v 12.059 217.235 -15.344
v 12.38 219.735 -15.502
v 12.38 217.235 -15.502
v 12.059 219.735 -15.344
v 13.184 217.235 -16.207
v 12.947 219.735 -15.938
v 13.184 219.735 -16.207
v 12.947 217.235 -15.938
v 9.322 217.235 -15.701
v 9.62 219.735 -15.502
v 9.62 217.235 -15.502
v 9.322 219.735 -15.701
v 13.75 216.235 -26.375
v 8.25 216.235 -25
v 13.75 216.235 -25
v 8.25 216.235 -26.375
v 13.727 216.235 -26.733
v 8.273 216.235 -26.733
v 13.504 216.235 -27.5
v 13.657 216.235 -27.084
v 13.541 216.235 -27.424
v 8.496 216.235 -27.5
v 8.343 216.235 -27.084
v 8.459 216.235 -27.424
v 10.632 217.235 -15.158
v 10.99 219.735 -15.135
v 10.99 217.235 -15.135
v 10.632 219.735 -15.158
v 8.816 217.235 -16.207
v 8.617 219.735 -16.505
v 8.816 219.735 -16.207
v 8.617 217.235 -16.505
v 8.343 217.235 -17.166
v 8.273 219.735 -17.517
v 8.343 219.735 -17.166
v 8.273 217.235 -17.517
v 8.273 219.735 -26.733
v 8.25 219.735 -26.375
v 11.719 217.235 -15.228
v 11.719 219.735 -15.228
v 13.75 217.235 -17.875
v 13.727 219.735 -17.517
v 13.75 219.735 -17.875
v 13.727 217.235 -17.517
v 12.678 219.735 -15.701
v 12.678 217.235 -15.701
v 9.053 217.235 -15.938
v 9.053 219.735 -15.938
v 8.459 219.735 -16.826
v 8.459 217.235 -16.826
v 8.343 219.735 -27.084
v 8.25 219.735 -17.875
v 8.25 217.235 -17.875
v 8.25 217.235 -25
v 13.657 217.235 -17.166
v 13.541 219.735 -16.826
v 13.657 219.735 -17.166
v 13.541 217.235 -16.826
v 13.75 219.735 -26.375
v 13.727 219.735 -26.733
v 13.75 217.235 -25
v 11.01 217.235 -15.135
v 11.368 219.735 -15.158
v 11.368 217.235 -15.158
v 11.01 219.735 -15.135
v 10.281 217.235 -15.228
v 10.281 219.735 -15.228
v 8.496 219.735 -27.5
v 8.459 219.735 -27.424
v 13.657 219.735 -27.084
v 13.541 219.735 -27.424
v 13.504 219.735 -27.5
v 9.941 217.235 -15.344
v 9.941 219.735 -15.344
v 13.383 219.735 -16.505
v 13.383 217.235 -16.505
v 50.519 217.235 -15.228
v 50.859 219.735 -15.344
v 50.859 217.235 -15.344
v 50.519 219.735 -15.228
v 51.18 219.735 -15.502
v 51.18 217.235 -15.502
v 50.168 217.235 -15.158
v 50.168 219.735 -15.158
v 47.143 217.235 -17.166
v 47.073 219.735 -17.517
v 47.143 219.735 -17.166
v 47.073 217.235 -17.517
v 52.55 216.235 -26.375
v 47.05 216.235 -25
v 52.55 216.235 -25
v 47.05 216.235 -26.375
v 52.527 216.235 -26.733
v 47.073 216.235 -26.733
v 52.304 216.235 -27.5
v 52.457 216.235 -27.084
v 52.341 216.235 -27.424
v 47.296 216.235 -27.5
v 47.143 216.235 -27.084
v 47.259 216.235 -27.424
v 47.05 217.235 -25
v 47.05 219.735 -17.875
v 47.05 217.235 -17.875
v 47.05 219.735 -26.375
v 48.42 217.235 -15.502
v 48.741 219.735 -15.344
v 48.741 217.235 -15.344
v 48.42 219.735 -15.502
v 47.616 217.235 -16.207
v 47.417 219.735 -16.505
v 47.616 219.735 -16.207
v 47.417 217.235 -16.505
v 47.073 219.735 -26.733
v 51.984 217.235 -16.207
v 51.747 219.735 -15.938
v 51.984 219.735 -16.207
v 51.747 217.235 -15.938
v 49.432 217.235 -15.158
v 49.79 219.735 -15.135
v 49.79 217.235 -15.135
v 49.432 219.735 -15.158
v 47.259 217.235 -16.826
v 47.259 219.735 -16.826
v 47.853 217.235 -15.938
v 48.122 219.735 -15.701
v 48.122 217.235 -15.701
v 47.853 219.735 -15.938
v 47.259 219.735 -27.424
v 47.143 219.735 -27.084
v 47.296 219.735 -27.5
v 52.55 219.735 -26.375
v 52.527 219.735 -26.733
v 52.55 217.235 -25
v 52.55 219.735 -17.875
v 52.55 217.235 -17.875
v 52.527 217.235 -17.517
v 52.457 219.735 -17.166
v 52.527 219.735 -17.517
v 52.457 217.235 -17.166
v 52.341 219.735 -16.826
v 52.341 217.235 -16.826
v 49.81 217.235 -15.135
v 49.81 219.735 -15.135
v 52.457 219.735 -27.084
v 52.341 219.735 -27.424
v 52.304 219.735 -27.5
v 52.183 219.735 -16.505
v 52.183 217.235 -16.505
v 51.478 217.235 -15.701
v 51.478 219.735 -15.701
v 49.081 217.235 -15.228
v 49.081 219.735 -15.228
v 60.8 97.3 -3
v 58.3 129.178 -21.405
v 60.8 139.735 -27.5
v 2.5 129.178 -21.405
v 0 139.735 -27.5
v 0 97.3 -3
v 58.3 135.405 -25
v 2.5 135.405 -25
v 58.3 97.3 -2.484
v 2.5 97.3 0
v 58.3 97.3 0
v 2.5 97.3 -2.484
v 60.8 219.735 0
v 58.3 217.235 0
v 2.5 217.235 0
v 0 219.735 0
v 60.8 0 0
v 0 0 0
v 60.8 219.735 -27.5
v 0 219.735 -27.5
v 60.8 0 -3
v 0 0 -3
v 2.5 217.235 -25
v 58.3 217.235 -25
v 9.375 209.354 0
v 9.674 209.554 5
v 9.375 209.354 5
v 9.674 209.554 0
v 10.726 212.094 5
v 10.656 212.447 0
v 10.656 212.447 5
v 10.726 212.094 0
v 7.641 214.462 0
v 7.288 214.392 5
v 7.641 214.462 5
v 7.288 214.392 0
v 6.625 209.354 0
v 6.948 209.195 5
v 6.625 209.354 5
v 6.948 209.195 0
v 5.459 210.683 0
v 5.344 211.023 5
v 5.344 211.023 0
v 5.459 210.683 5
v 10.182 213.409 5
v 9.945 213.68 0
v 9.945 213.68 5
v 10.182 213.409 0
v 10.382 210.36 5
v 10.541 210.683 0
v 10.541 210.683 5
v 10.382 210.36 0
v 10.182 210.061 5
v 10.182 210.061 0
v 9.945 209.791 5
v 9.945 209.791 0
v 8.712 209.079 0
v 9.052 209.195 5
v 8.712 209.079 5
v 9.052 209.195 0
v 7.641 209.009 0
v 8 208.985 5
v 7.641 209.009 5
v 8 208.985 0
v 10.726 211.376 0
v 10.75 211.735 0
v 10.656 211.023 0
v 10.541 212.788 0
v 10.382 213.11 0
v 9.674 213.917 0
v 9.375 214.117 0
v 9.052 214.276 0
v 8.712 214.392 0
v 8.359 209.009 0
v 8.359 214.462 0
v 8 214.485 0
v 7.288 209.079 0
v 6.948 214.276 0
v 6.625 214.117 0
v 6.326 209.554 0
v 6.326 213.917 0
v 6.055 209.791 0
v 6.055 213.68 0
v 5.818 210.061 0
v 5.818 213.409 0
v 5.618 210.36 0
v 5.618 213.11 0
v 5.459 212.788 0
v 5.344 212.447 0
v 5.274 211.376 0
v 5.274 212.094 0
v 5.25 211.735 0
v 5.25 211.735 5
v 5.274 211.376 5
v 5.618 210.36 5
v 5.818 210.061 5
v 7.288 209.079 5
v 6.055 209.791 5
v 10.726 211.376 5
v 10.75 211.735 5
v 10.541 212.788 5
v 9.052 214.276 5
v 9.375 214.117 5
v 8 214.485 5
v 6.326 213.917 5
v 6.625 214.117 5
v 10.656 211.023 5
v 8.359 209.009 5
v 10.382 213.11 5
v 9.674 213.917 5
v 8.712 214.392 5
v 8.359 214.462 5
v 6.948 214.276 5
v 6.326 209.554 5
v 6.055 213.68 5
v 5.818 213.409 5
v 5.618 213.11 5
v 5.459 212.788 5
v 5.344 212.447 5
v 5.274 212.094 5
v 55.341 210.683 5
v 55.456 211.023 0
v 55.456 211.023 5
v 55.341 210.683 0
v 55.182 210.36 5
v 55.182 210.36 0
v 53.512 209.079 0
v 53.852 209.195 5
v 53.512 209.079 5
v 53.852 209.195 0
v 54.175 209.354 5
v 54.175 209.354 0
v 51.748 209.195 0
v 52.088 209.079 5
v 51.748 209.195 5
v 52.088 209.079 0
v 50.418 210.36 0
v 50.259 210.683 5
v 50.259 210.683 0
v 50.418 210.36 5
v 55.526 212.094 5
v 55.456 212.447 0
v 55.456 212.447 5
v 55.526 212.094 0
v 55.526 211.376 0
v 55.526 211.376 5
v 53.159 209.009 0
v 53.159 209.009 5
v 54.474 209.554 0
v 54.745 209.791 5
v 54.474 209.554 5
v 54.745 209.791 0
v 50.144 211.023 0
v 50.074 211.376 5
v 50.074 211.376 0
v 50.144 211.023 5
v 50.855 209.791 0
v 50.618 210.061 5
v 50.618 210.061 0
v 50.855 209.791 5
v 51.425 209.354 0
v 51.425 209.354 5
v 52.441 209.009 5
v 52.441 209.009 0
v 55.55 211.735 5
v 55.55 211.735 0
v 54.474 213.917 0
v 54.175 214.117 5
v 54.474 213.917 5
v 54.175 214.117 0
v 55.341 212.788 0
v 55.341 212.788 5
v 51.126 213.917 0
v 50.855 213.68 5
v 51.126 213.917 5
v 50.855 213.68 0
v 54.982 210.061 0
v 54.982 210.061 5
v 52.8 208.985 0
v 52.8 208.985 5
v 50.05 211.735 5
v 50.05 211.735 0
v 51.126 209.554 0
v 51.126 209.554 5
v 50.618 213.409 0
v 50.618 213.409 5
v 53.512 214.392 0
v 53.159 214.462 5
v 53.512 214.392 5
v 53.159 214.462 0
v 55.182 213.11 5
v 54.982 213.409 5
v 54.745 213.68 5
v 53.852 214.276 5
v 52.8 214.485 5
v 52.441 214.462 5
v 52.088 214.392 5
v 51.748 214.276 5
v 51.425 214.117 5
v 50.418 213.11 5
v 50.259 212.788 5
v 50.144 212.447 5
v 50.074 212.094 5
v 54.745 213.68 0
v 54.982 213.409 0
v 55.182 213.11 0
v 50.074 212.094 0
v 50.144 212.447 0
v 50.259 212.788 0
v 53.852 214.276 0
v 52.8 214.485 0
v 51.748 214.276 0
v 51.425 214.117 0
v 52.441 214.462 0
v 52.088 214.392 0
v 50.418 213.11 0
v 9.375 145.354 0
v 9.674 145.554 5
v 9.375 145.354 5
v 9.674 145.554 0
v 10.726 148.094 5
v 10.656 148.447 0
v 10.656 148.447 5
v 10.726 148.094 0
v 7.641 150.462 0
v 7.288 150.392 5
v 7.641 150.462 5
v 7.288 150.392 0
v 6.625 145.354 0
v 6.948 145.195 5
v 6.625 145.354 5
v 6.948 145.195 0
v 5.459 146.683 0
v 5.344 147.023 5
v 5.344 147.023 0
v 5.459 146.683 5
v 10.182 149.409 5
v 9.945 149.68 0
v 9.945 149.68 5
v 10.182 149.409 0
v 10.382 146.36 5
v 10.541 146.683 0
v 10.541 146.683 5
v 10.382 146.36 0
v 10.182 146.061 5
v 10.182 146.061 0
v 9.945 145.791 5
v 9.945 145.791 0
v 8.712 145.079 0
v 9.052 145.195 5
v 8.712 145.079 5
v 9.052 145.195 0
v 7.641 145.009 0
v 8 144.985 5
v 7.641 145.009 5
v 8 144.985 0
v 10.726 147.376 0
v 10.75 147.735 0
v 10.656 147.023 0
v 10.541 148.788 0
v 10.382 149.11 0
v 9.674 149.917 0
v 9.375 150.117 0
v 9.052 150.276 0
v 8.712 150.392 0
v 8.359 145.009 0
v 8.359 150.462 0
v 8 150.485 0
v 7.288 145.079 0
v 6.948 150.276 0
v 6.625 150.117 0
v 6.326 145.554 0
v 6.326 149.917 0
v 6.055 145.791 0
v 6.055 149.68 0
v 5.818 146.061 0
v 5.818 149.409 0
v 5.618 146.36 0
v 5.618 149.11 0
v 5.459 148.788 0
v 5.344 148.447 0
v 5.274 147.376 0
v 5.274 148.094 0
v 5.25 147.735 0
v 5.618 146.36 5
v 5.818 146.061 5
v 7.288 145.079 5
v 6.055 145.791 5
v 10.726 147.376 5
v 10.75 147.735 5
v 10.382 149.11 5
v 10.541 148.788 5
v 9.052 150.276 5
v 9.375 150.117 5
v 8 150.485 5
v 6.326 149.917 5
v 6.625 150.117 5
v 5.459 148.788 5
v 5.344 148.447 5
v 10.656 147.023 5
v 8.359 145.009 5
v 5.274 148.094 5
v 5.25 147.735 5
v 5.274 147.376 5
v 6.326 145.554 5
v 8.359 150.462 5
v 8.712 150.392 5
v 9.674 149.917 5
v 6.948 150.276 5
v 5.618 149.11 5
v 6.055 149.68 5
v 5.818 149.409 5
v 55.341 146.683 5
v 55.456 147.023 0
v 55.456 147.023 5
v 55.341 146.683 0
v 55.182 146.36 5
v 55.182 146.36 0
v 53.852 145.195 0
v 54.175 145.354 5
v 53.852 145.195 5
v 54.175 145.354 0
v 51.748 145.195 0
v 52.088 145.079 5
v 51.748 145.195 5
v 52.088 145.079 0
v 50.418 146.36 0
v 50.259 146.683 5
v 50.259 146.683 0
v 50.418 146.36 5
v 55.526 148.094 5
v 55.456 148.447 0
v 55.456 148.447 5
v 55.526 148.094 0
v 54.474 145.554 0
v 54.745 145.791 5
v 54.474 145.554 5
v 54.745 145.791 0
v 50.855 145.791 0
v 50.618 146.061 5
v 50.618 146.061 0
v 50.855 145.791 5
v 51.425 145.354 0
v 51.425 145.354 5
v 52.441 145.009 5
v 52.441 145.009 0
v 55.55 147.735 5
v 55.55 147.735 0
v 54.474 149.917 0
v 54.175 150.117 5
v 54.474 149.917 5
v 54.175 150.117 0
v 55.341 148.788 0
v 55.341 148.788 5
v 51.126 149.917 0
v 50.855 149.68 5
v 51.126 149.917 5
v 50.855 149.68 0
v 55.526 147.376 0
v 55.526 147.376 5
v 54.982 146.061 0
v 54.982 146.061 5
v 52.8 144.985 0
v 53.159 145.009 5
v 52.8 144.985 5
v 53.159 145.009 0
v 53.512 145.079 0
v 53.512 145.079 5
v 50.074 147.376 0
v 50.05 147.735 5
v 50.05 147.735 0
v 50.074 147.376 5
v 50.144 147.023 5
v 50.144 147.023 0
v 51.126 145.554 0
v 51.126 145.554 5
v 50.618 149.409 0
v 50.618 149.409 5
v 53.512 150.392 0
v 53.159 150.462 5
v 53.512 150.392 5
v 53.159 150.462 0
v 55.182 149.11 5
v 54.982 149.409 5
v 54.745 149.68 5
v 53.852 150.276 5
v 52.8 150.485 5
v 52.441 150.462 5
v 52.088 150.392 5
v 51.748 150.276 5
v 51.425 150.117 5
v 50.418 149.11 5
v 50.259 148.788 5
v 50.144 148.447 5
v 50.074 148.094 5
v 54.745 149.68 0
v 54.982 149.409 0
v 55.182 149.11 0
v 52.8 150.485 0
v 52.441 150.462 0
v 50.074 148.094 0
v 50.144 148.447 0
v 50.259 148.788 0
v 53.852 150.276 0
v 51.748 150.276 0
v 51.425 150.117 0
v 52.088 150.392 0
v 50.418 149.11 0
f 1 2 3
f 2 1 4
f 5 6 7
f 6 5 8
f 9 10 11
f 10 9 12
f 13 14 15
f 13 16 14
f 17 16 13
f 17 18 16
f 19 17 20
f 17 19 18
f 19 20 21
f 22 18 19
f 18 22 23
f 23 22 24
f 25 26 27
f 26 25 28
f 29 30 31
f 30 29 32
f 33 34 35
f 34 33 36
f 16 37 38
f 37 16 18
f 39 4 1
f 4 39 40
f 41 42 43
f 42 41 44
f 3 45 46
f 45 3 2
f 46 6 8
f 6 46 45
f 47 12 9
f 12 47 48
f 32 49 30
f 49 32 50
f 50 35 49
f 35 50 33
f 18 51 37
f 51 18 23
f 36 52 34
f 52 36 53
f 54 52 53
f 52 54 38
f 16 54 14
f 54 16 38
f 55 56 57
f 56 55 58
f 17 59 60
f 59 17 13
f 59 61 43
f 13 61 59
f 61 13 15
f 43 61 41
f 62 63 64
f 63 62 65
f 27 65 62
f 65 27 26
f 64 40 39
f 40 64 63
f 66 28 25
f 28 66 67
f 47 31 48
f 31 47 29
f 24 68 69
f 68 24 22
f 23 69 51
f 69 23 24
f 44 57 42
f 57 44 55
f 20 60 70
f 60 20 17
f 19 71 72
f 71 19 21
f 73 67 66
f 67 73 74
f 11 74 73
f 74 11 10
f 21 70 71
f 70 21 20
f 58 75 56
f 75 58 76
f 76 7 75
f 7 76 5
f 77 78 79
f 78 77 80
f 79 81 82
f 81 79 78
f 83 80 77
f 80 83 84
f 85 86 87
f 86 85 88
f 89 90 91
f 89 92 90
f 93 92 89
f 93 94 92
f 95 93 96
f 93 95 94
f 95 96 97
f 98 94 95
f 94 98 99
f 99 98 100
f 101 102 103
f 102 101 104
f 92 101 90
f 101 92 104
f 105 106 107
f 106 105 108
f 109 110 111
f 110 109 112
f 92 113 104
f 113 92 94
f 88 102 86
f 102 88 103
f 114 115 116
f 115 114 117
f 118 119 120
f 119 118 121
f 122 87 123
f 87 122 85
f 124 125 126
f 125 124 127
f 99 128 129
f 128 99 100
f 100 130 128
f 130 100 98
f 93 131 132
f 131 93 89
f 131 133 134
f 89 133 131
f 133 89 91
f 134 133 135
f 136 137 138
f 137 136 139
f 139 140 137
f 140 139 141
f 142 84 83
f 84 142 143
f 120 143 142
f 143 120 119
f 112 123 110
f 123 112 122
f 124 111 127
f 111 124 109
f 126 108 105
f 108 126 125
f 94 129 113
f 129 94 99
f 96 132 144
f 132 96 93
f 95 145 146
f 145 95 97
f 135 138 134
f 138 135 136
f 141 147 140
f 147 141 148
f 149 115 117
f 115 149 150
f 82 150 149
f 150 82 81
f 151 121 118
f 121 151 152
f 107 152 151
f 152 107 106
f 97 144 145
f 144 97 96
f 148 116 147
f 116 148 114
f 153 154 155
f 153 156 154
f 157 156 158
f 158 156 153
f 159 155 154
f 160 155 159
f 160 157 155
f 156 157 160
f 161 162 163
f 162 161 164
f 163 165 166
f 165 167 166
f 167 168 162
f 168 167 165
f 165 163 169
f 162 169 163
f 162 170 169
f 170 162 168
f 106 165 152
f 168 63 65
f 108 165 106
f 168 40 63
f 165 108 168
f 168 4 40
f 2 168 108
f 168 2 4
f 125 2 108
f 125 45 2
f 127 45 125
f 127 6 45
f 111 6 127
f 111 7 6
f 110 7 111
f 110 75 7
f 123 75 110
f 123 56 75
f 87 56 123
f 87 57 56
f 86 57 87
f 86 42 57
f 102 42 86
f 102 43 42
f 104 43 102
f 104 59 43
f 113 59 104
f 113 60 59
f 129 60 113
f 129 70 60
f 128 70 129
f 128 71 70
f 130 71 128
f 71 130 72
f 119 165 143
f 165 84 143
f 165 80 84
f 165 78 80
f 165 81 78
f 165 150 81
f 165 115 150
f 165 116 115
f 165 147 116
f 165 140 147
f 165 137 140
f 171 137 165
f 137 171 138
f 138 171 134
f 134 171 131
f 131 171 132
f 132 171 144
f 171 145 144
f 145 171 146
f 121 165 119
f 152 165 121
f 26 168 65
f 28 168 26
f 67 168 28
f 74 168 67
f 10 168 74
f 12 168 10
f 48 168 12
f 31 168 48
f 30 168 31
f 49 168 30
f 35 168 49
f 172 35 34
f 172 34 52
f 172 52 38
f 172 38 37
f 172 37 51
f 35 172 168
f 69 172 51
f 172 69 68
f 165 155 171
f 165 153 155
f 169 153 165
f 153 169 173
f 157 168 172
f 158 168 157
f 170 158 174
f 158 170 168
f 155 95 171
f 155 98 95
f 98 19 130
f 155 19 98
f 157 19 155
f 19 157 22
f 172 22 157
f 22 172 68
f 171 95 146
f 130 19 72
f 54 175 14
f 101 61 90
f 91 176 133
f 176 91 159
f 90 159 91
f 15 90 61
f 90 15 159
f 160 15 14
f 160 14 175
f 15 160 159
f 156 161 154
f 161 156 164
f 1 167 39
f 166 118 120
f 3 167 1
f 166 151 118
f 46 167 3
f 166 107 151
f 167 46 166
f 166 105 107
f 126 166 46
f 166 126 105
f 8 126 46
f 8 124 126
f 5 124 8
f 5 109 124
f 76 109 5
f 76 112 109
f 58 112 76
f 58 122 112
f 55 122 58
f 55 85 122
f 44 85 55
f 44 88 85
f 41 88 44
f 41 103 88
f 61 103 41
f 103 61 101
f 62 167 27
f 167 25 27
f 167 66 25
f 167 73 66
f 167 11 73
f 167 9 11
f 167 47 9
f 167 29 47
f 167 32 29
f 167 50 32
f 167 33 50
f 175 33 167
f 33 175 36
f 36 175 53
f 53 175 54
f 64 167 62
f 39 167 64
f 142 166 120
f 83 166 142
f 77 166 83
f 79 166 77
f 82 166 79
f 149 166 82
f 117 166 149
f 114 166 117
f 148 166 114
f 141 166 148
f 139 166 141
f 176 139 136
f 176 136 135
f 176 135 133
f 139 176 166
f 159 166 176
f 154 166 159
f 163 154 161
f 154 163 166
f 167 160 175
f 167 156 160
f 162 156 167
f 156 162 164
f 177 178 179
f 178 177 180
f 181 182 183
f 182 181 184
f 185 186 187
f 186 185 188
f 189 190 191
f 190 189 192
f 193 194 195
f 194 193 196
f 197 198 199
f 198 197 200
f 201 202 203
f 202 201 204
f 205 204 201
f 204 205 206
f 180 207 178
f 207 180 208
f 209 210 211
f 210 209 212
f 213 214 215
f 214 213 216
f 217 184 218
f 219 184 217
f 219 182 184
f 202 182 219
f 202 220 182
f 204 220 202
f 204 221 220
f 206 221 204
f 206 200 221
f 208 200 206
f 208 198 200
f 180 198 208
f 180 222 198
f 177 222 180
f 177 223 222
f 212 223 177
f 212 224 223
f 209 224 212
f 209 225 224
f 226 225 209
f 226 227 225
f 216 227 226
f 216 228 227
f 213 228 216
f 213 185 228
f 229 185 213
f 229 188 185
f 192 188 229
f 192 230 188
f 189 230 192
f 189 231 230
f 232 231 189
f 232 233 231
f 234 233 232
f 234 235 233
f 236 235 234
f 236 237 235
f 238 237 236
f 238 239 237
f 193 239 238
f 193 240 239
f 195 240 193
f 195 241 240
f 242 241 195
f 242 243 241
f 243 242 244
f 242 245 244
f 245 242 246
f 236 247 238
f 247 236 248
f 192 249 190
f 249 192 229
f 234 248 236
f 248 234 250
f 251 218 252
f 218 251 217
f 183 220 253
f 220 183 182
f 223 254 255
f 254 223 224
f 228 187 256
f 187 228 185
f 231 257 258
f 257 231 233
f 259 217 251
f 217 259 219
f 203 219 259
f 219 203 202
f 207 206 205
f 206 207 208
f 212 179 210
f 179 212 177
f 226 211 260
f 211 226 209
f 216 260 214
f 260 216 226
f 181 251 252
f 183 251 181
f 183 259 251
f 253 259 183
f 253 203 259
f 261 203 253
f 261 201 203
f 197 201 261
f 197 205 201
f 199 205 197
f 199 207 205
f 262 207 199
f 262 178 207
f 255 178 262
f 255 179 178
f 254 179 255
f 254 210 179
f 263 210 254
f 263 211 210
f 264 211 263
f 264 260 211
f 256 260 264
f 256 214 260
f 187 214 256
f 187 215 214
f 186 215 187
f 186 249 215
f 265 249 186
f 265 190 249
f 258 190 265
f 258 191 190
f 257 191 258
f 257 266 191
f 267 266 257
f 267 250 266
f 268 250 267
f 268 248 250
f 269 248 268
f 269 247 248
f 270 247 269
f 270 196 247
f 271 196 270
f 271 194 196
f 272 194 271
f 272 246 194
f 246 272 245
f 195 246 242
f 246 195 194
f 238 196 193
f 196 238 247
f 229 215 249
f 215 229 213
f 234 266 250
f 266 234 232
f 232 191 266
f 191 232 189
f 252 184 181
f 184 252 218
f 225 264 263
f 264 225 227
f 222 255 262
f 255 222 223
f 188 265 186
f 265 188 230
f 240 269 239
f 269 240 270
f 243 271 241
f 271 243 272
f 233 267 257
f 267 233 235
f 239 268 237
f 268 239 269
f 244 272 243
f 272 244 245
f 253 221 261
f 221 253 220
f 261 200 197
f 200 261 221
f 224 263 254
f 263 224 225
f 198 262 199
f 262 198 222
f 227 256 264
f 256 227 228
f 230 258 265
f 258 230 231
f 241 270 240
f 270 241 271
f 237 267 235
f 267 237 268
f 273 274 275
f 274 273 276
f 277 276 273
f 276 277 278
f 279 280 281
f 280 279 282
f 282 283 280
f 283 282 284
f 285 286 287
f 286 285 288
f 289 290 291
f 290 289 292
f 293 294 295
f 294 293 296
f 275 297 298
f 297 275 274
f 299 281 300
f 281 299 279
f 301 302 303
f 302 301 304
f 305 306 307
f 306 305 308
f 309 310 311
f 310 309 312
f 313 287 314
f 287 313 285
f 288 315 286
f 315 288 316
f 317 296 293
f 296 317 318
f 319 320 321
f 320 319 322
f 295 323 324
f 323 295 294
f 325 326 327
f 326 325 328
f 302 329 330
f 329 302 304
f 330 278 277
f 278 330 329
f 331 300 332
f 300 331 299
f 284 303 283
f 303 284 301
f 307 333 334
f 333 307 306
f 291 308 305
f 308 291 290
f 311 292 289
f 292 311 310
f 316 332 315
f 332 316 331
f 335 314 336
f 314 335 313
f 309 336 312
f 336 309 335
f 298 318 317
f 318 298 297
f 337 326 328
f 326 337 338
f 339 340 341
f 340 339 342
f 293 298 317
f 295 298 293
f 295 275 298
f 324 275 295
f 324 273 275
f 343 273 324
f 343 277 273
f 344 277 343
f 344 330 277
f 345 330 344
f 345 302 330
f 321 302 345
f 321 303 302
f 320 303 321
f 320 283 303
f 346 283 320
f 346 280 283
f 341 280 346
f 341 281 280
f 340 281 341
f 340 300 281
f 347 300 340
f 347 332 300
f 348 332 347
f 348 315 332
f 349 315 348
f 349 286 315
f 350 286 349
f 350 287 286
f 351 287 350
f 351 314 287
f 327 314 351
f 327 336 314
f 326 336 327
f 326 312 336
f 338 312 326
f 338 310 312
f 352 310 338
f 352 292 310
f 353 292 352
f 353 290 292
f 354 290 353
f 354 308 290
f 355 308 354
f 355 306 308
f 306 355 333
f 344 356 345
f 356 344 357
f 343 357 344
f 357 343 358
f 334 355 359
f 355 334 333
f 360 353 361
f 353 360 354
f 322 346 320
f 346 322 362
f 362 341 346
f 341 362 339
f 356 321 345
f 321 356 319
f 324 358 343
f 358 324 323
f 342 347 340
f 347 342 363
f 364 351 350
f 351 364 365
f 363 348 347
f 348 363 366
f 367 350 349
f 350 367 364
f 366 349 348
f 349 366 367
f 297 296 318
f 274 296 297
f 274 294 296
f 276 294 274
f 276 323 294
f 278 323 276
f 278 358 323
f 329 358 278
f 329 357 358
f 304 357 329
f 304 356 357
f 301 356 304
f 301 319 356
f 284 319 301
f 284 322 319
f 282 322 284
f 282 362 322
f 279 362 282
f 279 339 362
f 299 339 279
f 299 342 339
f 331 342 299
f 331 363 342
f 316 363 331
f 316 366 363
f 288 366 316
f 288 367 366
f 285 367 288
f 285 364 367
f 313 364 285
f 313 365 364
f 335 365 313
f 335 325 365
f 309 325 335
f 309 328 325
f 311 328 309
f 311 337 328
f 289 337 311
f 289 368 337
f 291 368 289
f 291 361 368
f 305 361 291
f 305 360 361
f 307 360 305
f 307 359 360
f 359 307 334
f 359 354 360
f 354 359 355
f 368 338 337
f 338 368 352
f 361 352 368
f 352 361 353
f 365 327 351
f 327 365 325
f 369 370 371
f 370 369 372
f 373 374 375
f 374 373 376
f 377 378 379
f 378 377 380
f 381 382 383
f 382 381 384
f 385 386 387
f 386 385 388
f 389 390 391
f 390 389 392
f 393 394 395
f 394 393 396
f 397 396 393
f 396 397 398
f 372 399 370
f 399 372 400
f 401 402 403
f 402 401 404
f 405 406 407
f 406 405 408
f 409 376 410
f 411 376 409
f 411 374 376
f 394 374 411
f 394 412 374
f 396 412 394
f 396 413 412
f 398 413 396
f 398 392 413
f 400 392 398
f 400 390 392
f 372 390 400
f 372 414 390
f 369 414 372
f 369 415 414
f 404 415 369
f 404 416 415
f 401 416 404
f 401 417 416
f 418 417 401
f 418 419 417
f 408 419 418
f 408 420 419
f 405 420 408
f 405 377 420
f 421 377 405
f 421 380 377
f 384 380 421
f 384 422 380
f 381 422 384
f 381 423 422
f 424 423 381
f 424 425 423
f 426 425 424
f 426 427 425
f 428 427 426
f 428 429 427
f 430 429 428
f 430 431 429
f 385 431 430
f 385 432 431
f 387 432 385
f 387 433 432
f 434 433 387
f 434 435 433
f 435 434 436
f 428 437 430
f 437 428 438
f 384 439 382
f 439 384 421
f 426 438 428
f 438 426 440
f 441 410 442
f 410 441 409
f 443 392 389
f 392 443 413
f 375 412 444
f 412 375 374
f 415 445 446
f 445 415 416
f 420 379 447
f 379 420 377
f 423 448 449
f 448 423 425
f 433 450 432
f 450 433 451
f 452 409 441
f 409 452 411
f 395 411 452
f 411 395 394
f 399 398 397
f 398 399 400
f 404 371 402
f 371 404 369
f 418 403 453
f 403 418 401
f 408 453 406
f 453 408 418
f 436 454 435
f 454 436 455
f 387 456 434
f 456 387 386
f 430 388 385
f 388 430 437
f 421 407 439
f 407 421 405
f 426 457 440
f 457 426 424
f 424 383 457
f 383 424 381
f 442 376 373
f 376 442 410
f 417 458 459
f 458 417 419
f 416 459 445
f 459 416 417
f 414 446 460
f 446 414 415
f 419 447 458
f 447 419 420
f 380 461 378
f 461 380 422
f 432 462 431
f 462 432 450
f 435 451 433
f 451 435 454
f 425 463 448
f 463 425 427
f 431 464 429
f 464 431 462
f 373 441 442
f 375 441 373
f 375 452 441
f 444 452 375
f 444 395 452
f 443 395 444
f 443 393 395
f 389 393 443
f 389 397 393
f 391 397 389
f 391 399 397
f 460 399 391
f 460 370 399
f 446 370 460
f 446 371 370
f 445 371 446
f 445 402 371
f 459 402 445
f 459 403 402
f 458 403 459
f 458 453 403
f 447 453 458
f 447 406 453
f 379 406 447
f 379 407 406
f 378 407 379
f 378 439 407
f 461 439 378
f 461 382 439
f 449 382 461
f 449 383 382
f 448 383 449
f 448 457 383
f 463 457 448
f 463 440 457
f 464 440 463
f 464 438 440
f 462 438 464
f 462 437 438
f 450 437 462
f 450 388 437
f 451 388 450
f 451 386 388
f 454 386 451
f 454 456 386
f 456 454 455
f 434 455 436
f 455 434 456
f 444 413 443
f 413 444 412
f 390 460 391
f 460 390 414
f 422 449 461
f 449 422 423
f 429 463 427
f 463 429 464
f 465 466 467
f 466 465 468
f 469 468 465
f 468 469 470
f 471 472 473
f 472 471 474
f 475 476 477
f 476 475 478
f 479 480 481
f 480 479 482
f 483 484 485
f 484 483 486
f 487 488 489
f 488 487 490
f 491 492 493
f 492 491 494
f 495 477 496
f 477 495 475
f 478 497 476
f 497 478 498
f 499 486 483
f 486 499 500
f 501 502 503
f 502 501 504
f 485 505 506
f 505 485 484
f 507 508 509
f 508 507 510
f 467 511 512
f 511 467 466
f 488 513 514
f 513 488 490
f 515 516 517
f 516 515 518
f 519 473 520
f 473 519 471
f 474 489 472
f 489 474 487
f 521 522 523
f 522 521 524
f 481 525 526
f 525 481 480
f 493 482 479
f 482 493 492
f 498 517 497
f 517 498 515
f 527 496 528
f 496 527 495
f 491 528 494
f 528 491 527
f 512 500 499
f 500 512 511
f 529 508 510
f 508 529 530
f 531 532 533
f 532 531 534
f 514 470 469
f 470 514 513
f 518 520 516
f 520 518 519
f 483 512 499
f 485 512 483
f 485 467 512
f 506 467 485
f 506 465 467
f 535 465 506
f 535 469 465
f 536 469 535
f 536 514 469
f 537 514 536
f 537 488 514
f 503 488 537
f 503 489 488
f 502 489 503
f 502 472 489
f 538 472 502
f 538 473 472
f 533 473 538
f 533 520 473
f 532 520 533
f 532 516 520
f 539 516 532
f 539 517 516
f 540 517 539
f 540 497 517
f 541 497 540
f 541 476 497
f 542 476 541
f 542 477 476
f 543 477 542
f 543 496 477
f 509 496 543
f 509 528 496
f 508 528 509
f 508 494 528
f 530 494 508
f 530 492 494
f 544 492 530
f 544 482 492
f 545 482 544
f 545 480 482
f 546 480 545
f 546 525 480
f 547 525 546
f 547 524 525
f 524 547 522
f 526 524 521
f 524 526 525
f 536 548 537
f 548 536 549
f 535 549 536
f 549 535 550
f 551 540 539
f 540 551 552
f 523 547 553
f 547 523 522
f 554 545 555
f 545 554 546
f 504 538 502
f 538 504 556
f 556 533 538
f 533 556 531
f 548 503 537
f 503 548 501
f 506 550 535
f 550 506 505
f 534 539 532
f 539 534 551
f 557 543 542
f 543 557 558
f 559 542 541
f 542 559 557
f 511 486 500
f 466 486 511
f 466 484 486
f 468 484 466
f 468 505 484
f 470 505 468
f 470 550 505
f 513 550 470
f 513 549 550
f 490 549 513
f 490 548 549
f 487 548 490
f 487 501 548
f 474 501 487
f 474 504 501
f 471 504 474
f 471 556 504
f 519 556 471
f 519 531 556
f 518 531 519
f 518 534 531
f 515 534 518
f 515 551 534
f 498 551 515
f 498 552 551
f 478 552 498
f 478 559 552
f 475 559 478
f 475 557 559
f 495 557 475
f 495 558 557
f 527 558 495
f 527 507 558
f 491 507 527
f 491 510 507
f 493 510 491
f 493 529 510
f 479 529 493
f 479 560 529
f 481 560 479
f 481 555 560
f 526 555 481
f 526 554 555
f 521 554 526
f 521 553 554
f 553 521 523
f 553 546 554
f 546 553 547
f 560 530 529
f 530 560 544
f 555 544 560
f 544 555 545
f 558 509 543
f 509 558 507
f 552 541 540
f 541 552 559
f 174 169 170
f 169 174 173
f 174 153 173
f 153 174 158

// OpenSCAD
// Parametric reconstruction of images/xtouch Battery Case Back.stl,
// rotated to portrait, moved to the TOP of the case, and resized to fit a
// real single-cell 18650 holder instead of the reference part's own
// dimensions (this is what you asked for: battery section at the top of
// the back side, its bulge forming the kickstand wedge).
//
// Same caveat as xtouch_reference_front.scad: rebuilt from scratch by
// measuring the original STL mesh, not an automatic conversion. Design
// language kept from the reference (tapered wedge tray, 4 corner pegs, 2
// slots in the thick end wall); envelope is now sized to the actual
// holder, not the reference's own 101.3 x 47.9 x 37.6mm block.
//
// SIZE NOTE: an 18650 holder is 76mm long, which does not fit within the
// board's own 97.3mm-tall footprint alongside the display (confirmed and
// accepted - see conversation). So this back piece is now TALLER than
// the front bezel: the battery pocket + taper sit above the front
// piece's own height, and a thin flat cover continues down the rest of
// the way to match the front's height for the board/display zone below.
// Total case height grows from ~97.3mm to ~225mm.
//
// ---------------- battery holder (measured, single 18650 + wires) -------
holder_L = 76.0;    // holder length
holder_W = 20.0;     // holder width
holder_T = 21.0;     // holder thickness (holds the 18.6mm cell + contacts)
clear    = 4.0;       // clearance added to each pocket dimension

// ---------------- envelope ----------------
port_w = 60.8;        // matches xtouch_reference_front.scad's port_w
port_h = 97.3;         // matches xtouch_reference_front.scad's port_h (board/display zone)

pocket_y = holder_L + clear;   // 80 - flat-pocket run (holds the holder's length)
pocket_w = holder_W + clear;   // 24 - flat-pocket width (holder centered in port_w)
pocket_z = holder_T + clear;   // 25 - flat-pocket depth (holder thickness + clearance)

wall       = 2.5;        // tray wall thickness
board_wall = 3.0;         // thin flat back-cover thickness over the board/display zone
thick_z    = pocket_z + wall;   // 27.5 - tray's outer depth at the flat pocket

prop_angle = 30;             // desk-rest angle off horizontal, same target
                              // used in stagelink_case.scad's own kickstand
taper_transition = (thick_z - board_wall) / tan(prop_angle);  // run needed to taper
                                                                // back to board_wall
back_y_total = pocket_y + taper_transition;      // battery-zone Y (pocket + taper),
                                                  // measured down from the case's top edge
total_h = back_y_total + port_h;                 // full case height, top edge to bottom

echo("BACK total case height =", total_h, "mm (board/display zone", port_h,
     "+ battery zone", back_y_total, ")");

peg_dia   = 5.5;
peg_h     = 5.0;
peg_inset = 8.0;

slot_w      = 5.5;
slot_h      = 14.0;
slot_inset  = 11.0;
slot_z_mid  = thick_z * 0.55;

$fn = 48;

echo("BACK (real 18650 holder): pocket_y =", pocket_y, " thick_z =", thick_z,
     " taper_transition =", taper_transition, " -> battery zone Y =", back_y_total);

// Local frame: local_y = 0 at the thick (top) end, increasing DOWN into
// the case. Flat-bottomed for the first pocket_y (holds the holder), then
// a straight taper down to board_wall (matching the thin cover below)
// over taper_transition, then a thin flat cover for the rest of the case
// height. Mirrored into world coordinates at the bottom of this file so
// local_y=0 lands at the case's actual top edge (world y = total_h) and
// increasing local_y moves down the case (world y decreasing).
module wedge_profile(w, depth_flat, y_flat, y_taper_end, depth_end) {
  pts = [[0, 0], [0, -depth_flat], [y_flat, -depth_flat],
         [y_taper_end, -depth_end], [y_taper_end, 0]];
  rotate([90, 0, 90])
    linear_extrude(height = w)
      polygon(points = pts);
}

// thin flat cover for the board/display zone, continuing from where the
// taper ends down to the bottom of the case
module cover_slab(w, y0, y1, depth) {
  pts = [[y0, 0], [y0, -depth], [y1, -depth], [y1, 0]];
  rotate([90, 0, 90])
    linear_extrude(height = w)
      polygon(points = pts);
}

module back_tray_local() {
  union() {
    difference() {
      wedge_profile(port_w, thick_z, pocket_y, back_y_total, board_wall);

      // hollow the tray, opening upward (+Z, toward the front bezel) -
      // only over the pocket + taper region, not the thin cover below
      translate([wall, wall, 0])
        wedge_profile(port_w - 2*wall, thick_z - wall, pocket_y + 2, back_y_total, 1);

      // 2 vertical slots through the thick (top) end wall
      for (sx = [slot_inset, port_w - slot_inset])
        translate([sx, -1, -slot_z_mid - slot_h/2])
          rotate([-90, 0, 0])
            linear_extrude(height = wall + 2)
              offset(r = slot_w/2 - 0.01)
                square([0.02, slot_h - slot_w], center = true);
    }

    // 4 corner pegs, proud of the rim, within the flat-pocket region
    for (p = [[peg_inset, peg_inset], [port_w - peg_inset, peg_inset],
              [peg_inset, pocket_y - peg_inset], [port_w - peg_inset, pocket_y - peg_inset]])
      translate([p[0], p[1], 0])
        cylinder(d = peg_dia, h = peg_h);

    // thin flat back cover over the board/display zone
    cover_slab(port_w, back_y_total, total_h, board_wall);
  }
}

// place at the top of a portrait case: local y=0 (thick/pocket end) ->
// world y=total_h (the case's new, taller top edge); local y increases
// downward toward the bottom of the case
translate([0, total_h, 0])
  mirror([0, 1, 0])
    back_tray_local();
